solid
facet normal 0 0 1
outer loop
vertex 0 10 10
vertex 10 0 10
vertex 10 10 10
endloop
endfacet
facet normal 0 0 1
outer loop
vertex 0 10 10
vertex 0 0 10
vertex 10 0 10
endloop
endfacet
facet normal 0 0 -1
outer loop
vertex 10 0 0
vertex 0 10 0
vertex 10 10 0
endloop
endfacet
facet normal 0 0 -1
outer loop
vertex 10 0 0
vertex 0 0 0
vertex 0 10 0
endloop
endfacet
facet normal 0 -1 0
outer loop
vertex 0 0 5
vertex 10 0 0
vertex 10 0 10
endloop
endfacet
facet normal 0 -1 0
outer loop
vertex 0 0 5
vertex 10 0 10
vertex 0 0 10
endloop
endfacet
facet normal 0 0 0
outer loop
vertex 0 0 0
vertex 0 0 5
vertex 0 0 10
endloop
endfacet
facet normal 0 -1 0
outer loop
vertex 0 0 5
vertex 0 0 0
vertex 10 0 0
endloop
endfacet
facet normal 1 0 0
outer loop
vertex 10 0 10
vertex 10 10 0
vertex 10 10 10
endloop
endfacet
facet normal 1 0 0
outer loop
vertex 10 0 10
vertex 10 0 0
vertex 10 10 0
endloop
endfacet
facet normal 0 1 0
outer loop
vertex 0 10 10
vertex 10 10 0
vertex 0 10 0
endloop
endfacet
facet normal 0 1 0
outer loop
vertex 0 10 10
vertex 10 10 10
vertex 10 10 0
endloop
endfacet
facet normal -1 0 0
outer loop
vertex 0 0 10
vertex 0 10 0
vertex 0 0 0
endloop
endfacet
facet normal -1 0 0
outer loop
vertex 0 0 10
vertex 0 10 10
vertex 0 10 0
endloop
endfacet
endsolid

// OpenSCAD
polyhedron([
            [0, 10, 10],
            [10, 0, 10],
            [10, 10, 10],
            [0, 0, 10],
            [10, 0, 0],
            [0, 10, 0],
            [10, 10, 0],
            [0, 0, 0],
            [0, 0, 5]],
           [
            [0,1,2],
            [0,3,1],
            [4,5,6],
            [4,7,5],
            [8,4,1],
            [8,1,3],
            [7,8,3],
            [8,7,4],
            [1,6,2],
            [1,4,6],
            [0,6,5],
            [0,2,6],
            [3,5,7],
            [3,0,5]
                ]);
